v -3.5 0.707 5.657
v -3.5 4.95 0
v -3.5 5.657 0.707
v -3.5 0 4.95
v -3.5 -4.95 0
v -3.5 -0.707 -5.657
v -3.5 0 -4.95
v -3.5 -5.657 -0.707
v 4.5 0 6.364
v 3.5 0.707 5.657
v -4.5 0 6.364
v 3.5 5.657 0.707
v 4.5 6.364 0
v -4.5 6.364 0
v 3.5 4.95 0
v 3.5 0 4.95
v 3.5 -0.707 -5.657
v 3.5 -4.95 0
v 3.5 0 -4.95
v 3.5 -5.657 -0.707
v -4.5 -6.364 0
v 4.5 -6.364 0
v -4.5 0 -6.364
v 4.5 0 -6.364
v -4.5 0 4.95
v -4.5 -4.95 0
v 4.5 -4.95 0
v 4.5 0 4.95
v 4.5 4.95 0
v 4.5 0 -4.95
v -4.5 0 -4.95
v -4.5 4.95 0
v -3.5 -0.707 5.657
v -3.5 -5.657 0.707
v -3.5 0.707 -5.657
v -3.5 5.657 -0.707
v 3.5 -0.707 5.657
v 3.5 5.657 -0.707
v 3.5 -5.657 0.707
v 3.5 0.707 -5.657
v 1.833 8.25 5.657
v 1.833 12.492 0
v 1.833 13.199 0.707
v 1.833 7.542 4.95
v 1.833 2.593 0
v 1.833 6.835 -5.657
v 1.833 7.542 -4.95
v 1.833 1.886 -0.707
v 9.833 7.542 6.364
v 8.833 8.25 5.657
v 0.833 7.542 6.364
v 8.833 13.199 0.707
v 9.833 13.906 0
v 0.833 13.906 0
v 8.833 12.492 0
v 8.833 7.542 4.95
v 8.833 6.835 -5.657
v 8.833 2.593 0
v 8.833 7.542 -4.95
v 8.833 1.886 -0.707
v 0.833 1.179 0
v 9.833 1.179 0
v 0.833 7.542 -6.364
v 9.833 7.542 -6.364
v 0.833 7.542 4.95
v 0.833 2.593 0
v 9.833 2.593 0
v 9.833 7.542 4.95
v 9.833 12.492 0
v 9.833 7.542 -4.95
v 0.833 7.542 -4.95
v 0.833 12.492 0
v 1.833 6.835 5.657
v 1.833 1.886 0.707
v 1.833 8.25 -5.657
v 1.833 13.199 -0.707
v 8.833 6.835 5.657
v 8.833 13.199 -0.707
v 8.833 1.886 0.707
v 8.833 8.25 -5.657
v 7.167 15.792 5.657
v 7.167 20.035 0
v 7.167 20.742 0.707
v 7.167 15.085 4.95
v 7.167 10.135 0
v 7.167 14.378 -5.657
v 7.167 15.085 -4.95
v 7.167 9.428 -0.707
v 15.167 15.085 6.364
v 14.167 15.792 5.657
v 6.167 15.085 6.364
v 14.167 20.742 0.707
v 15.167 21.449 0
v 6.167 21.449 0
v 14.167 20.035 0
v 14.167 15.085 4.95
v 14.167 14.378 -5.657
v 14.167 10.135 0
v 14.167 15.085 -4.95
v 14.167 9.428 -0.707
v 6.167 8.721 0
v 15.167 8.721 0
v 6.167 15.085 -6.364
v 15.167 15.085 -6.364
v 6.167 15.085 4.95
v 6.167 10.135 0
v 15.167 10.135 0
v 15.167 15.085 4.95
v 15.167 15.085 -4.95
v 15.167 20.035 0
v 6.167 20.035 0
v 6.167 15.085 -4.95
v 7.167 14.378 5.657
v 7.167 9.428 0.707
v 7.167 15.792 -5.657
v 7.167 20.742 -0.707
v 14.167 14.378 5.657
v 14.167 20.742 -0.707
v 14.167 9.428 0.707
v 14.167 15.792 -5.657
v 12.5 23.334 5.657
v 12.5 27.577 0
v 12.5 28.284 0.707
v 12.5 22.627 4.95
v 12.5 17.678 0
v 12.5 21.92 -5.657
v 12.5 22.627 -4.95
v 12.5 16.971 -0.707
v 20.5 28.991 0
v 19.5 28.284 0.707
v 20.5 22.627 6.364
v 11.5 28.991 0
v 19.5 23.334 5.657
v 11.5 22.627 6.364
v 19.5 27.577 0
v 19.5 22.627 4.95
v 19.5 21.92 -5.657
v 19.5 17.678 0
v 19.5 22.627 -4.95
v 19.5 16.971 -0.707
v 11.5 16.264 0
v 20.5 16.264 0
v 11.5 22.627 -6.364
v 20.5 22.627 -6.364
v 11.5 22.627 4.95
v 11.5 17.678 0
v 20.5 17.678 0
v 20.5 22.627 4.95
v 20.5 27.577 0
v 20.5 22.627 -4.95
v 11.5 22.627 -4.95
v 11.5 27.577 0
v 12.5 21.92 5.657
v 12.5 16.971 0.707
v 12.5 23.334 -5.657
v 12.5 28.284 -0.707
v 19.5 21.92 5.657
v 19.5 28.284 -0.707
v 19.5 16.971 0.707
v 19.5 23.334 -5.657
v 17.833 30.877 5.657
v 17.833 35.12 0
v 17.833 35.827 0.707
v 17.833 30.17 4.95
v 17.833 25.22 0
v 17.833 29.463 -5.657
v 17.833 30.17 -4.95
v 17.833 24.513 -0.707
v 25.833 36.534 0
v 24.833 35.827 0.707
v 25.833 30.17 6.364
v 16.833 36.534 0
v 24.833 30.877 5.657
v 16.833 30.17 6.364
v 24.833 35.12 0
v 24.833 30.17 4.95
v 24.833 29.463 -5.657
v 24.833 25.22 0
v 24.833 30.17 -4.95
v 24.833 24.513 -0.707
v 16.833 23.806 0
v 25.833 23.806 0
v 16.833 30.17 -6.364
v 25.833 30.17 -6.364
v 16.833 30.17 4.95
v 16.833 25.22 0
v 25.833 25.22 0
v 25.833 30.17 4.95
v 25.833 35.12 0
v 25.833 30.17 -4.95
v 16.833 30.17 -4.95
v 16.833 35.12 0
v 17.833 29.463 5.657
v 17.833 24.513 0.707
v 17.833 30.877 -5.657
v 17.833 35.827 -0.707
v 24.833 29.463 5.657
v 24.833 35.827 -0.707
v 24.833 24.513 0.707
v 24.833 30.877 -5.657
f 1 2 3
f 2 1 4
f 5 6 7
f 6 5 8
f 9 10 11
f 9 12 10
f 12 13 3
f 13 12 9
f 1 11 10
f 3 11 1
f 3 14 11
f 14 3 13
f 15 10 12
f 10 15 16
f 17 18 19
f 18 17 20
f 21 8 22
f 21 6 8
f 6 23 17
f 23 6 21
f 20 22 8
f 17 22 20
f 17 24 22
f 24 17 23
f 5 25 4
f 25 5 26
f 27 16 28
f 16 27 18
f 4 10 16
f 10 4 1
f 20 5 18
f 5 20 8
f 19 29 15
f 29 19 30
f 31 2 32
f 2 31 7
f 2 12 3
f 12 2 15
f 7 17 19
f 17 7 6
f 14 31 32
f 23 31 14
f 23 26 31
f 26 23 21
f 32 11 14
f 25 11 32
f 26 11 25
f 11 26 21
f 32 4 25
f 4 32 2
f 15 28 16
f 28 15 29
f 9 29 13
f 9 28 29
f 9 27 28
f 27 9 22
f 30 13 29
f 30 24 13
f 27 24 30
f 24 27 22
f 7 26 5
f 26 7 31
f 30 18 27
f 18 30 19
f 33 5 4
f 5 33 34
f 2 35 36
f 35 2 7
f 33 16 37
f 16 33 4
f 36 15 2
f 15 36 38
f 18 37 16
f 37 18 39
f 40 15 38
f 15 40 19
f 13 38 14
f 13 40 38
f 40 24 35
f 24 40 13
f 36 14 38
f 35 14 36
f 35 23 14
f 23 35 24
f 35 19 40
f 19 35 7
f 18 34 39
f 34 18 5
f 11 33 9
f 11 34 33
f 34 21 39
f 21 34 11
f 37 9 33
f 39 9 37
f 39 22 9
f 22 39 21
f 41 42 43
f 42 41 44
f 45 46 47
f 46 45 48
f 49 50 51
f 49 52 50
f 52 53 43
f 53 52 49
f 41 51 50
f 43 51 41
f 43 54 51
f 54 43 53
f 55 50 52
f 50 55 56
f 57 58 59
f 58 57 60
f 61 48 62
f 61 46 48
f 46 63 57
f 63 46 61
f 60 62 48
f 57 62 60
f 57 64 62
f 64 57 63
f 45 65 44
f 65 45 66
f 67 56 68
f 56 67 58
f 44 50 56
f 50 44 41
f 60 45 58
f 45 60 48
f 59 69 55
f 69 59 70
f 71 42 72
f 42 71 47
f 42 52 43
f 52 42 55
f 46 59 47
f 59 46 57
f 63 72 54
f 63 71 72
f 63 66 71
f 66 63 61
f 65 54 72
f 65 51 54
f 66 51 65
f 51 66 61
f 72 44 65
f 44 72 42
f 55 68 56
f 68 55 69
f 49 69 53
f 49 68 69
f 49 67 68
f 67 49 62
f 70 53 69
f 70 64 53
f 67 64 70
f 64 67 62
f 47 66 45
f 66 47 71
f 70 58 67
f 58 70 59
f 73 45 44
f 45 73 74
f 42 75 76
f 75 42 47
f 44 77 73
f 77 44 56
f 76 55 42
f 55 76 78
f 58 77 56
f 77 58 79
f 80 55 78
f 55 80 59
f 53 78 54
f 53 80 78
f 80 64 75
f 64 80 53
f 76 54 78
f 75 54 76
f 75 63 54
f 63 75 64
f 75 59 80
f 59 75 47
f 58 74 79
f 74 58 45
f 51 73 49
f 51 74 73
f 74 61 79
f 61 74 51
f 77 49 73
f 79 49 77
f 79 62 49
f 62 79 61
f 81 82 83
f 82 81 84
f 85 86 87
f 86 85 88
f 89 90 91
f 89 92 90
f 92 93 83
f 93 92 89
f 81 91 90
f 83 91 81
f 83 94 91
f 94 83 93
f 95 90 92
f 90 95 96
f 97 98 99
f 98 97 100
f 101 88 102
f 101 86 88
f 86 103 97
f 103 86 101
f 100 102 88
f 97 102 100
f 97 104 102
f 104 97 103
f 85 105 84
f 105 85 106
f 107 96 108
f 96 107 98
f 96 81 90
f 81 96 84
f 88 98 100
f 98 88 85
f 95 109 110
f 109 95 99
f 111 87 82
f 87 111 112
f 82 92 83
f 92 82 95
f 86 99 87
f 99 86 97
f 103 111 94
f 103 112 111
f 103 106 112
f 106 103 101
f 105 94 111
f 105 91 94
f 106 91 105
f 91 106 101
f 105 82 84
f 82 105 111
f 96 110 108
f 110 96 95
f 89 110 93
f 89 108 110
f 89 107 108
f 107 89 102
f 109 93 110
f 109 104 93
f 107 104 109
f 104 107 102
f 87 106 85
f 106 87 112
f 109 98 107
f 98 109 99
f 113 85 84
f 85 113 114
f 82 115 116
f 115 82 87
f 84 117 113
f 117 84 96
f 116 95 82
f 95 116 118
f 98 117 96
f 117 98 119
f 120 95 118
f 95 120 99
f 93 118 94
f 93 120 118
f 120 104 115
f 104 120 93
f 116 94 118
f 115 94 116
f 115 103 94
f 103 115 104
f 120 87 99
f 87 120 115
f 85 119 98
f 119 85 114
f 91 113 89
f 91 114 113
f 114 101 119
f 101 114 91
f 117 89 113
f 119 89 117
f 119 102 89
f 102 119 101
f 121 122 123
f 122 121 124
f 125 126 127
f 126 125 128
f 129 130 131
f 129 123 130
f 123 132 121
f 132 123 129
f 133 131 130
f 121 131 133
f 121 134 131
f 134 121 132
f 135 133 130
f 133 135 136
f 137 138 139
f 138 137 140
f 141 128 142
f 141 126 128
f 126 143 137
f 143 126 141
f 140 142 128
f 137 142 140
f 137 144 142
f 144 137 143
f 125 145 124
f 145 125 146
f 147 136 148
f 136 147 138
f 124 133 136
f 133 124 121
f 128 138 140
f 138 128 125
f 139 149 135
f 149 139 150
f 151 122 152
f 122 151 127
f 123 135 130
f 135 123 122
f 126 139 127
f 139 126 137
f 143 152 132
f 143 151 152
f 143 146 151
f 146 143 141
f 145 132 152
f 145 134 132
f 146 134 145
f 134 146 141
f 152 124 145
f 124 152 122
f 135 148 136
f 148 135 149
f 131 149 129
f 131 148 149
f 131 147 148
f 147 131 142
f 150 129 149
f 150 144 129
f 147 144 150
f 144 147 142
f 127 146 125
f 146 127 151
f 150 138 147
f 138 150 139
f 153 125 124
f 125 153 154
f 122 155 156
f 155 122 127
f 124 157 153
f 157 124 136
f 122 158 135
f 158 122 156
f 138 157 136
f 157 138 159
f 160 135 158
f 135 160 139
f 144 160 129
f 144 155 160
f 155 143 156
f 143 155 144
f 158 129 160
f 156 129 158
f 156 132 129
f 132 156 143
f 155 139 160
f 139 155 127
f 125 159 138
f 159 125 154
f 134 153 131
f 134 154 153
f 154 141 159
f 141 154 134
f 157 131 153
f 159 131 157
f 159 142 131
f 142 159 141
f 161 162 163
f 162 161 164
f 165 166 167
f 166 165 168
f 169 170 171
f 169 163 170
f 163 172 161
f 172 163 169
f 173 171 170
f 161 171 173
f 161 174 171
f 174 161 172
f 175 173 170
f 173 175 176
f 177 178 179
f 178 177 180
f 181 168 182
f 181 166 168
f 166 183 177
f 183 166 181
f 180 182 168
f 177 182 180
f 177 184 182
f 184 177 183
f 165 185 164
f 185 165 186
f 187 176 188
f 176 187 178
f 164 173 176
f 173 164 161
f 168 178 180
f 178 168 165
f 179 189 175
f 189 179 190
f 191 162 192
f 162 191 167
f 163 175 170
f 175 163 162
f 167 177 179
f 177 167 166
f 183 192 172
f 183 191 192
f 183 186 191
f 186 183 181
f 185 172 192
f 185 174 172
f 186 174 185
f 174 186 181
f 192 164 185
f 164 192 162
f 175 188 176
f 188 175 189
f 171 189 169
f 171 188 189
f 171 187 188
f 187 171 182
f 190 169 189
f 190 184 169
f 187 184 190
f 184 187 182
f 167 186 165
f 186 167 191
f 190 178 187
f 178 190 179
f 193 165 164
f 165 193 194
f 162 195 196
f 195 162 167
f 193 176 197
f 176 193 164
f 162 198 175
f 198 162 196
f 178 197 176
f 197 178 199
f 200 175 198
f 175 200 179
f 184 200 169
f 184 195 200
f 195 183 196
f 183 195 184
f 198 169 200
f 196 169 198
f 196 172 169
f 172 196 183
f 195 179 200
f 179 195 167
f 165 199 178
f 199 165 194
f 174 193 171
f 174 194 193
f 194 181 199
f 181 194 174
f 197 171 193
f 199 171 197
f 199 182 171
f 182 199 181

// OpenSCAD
side = 8; // [mm] side of a cube
off = side*2/3;  // [mm] offset between cubes
w = 2;    // [mm]  thickness
num_cubes=5;  // [#] number of interlocking cubes


module cubeWidth(side, w) {
    difference() {
    cube( [side+w/2, side+w/2, side+w/2], center=true );
        union() {
            cube( [side-w/2, side-w/2, side+w/2], center=true );
            cube( [side+w/2, side-w/2, side-w/2], center=true );
            cube( [side-w/2, side+w/2, side-w/2], center=true );
        }
    }
}


module instance() {
rotate( [-45, 0, 0] ) for (i=[0:num_cubes-1]) 
    translate( [i*off,i*off,i*off] ) cubeWidth(side, w);
}

instance();
